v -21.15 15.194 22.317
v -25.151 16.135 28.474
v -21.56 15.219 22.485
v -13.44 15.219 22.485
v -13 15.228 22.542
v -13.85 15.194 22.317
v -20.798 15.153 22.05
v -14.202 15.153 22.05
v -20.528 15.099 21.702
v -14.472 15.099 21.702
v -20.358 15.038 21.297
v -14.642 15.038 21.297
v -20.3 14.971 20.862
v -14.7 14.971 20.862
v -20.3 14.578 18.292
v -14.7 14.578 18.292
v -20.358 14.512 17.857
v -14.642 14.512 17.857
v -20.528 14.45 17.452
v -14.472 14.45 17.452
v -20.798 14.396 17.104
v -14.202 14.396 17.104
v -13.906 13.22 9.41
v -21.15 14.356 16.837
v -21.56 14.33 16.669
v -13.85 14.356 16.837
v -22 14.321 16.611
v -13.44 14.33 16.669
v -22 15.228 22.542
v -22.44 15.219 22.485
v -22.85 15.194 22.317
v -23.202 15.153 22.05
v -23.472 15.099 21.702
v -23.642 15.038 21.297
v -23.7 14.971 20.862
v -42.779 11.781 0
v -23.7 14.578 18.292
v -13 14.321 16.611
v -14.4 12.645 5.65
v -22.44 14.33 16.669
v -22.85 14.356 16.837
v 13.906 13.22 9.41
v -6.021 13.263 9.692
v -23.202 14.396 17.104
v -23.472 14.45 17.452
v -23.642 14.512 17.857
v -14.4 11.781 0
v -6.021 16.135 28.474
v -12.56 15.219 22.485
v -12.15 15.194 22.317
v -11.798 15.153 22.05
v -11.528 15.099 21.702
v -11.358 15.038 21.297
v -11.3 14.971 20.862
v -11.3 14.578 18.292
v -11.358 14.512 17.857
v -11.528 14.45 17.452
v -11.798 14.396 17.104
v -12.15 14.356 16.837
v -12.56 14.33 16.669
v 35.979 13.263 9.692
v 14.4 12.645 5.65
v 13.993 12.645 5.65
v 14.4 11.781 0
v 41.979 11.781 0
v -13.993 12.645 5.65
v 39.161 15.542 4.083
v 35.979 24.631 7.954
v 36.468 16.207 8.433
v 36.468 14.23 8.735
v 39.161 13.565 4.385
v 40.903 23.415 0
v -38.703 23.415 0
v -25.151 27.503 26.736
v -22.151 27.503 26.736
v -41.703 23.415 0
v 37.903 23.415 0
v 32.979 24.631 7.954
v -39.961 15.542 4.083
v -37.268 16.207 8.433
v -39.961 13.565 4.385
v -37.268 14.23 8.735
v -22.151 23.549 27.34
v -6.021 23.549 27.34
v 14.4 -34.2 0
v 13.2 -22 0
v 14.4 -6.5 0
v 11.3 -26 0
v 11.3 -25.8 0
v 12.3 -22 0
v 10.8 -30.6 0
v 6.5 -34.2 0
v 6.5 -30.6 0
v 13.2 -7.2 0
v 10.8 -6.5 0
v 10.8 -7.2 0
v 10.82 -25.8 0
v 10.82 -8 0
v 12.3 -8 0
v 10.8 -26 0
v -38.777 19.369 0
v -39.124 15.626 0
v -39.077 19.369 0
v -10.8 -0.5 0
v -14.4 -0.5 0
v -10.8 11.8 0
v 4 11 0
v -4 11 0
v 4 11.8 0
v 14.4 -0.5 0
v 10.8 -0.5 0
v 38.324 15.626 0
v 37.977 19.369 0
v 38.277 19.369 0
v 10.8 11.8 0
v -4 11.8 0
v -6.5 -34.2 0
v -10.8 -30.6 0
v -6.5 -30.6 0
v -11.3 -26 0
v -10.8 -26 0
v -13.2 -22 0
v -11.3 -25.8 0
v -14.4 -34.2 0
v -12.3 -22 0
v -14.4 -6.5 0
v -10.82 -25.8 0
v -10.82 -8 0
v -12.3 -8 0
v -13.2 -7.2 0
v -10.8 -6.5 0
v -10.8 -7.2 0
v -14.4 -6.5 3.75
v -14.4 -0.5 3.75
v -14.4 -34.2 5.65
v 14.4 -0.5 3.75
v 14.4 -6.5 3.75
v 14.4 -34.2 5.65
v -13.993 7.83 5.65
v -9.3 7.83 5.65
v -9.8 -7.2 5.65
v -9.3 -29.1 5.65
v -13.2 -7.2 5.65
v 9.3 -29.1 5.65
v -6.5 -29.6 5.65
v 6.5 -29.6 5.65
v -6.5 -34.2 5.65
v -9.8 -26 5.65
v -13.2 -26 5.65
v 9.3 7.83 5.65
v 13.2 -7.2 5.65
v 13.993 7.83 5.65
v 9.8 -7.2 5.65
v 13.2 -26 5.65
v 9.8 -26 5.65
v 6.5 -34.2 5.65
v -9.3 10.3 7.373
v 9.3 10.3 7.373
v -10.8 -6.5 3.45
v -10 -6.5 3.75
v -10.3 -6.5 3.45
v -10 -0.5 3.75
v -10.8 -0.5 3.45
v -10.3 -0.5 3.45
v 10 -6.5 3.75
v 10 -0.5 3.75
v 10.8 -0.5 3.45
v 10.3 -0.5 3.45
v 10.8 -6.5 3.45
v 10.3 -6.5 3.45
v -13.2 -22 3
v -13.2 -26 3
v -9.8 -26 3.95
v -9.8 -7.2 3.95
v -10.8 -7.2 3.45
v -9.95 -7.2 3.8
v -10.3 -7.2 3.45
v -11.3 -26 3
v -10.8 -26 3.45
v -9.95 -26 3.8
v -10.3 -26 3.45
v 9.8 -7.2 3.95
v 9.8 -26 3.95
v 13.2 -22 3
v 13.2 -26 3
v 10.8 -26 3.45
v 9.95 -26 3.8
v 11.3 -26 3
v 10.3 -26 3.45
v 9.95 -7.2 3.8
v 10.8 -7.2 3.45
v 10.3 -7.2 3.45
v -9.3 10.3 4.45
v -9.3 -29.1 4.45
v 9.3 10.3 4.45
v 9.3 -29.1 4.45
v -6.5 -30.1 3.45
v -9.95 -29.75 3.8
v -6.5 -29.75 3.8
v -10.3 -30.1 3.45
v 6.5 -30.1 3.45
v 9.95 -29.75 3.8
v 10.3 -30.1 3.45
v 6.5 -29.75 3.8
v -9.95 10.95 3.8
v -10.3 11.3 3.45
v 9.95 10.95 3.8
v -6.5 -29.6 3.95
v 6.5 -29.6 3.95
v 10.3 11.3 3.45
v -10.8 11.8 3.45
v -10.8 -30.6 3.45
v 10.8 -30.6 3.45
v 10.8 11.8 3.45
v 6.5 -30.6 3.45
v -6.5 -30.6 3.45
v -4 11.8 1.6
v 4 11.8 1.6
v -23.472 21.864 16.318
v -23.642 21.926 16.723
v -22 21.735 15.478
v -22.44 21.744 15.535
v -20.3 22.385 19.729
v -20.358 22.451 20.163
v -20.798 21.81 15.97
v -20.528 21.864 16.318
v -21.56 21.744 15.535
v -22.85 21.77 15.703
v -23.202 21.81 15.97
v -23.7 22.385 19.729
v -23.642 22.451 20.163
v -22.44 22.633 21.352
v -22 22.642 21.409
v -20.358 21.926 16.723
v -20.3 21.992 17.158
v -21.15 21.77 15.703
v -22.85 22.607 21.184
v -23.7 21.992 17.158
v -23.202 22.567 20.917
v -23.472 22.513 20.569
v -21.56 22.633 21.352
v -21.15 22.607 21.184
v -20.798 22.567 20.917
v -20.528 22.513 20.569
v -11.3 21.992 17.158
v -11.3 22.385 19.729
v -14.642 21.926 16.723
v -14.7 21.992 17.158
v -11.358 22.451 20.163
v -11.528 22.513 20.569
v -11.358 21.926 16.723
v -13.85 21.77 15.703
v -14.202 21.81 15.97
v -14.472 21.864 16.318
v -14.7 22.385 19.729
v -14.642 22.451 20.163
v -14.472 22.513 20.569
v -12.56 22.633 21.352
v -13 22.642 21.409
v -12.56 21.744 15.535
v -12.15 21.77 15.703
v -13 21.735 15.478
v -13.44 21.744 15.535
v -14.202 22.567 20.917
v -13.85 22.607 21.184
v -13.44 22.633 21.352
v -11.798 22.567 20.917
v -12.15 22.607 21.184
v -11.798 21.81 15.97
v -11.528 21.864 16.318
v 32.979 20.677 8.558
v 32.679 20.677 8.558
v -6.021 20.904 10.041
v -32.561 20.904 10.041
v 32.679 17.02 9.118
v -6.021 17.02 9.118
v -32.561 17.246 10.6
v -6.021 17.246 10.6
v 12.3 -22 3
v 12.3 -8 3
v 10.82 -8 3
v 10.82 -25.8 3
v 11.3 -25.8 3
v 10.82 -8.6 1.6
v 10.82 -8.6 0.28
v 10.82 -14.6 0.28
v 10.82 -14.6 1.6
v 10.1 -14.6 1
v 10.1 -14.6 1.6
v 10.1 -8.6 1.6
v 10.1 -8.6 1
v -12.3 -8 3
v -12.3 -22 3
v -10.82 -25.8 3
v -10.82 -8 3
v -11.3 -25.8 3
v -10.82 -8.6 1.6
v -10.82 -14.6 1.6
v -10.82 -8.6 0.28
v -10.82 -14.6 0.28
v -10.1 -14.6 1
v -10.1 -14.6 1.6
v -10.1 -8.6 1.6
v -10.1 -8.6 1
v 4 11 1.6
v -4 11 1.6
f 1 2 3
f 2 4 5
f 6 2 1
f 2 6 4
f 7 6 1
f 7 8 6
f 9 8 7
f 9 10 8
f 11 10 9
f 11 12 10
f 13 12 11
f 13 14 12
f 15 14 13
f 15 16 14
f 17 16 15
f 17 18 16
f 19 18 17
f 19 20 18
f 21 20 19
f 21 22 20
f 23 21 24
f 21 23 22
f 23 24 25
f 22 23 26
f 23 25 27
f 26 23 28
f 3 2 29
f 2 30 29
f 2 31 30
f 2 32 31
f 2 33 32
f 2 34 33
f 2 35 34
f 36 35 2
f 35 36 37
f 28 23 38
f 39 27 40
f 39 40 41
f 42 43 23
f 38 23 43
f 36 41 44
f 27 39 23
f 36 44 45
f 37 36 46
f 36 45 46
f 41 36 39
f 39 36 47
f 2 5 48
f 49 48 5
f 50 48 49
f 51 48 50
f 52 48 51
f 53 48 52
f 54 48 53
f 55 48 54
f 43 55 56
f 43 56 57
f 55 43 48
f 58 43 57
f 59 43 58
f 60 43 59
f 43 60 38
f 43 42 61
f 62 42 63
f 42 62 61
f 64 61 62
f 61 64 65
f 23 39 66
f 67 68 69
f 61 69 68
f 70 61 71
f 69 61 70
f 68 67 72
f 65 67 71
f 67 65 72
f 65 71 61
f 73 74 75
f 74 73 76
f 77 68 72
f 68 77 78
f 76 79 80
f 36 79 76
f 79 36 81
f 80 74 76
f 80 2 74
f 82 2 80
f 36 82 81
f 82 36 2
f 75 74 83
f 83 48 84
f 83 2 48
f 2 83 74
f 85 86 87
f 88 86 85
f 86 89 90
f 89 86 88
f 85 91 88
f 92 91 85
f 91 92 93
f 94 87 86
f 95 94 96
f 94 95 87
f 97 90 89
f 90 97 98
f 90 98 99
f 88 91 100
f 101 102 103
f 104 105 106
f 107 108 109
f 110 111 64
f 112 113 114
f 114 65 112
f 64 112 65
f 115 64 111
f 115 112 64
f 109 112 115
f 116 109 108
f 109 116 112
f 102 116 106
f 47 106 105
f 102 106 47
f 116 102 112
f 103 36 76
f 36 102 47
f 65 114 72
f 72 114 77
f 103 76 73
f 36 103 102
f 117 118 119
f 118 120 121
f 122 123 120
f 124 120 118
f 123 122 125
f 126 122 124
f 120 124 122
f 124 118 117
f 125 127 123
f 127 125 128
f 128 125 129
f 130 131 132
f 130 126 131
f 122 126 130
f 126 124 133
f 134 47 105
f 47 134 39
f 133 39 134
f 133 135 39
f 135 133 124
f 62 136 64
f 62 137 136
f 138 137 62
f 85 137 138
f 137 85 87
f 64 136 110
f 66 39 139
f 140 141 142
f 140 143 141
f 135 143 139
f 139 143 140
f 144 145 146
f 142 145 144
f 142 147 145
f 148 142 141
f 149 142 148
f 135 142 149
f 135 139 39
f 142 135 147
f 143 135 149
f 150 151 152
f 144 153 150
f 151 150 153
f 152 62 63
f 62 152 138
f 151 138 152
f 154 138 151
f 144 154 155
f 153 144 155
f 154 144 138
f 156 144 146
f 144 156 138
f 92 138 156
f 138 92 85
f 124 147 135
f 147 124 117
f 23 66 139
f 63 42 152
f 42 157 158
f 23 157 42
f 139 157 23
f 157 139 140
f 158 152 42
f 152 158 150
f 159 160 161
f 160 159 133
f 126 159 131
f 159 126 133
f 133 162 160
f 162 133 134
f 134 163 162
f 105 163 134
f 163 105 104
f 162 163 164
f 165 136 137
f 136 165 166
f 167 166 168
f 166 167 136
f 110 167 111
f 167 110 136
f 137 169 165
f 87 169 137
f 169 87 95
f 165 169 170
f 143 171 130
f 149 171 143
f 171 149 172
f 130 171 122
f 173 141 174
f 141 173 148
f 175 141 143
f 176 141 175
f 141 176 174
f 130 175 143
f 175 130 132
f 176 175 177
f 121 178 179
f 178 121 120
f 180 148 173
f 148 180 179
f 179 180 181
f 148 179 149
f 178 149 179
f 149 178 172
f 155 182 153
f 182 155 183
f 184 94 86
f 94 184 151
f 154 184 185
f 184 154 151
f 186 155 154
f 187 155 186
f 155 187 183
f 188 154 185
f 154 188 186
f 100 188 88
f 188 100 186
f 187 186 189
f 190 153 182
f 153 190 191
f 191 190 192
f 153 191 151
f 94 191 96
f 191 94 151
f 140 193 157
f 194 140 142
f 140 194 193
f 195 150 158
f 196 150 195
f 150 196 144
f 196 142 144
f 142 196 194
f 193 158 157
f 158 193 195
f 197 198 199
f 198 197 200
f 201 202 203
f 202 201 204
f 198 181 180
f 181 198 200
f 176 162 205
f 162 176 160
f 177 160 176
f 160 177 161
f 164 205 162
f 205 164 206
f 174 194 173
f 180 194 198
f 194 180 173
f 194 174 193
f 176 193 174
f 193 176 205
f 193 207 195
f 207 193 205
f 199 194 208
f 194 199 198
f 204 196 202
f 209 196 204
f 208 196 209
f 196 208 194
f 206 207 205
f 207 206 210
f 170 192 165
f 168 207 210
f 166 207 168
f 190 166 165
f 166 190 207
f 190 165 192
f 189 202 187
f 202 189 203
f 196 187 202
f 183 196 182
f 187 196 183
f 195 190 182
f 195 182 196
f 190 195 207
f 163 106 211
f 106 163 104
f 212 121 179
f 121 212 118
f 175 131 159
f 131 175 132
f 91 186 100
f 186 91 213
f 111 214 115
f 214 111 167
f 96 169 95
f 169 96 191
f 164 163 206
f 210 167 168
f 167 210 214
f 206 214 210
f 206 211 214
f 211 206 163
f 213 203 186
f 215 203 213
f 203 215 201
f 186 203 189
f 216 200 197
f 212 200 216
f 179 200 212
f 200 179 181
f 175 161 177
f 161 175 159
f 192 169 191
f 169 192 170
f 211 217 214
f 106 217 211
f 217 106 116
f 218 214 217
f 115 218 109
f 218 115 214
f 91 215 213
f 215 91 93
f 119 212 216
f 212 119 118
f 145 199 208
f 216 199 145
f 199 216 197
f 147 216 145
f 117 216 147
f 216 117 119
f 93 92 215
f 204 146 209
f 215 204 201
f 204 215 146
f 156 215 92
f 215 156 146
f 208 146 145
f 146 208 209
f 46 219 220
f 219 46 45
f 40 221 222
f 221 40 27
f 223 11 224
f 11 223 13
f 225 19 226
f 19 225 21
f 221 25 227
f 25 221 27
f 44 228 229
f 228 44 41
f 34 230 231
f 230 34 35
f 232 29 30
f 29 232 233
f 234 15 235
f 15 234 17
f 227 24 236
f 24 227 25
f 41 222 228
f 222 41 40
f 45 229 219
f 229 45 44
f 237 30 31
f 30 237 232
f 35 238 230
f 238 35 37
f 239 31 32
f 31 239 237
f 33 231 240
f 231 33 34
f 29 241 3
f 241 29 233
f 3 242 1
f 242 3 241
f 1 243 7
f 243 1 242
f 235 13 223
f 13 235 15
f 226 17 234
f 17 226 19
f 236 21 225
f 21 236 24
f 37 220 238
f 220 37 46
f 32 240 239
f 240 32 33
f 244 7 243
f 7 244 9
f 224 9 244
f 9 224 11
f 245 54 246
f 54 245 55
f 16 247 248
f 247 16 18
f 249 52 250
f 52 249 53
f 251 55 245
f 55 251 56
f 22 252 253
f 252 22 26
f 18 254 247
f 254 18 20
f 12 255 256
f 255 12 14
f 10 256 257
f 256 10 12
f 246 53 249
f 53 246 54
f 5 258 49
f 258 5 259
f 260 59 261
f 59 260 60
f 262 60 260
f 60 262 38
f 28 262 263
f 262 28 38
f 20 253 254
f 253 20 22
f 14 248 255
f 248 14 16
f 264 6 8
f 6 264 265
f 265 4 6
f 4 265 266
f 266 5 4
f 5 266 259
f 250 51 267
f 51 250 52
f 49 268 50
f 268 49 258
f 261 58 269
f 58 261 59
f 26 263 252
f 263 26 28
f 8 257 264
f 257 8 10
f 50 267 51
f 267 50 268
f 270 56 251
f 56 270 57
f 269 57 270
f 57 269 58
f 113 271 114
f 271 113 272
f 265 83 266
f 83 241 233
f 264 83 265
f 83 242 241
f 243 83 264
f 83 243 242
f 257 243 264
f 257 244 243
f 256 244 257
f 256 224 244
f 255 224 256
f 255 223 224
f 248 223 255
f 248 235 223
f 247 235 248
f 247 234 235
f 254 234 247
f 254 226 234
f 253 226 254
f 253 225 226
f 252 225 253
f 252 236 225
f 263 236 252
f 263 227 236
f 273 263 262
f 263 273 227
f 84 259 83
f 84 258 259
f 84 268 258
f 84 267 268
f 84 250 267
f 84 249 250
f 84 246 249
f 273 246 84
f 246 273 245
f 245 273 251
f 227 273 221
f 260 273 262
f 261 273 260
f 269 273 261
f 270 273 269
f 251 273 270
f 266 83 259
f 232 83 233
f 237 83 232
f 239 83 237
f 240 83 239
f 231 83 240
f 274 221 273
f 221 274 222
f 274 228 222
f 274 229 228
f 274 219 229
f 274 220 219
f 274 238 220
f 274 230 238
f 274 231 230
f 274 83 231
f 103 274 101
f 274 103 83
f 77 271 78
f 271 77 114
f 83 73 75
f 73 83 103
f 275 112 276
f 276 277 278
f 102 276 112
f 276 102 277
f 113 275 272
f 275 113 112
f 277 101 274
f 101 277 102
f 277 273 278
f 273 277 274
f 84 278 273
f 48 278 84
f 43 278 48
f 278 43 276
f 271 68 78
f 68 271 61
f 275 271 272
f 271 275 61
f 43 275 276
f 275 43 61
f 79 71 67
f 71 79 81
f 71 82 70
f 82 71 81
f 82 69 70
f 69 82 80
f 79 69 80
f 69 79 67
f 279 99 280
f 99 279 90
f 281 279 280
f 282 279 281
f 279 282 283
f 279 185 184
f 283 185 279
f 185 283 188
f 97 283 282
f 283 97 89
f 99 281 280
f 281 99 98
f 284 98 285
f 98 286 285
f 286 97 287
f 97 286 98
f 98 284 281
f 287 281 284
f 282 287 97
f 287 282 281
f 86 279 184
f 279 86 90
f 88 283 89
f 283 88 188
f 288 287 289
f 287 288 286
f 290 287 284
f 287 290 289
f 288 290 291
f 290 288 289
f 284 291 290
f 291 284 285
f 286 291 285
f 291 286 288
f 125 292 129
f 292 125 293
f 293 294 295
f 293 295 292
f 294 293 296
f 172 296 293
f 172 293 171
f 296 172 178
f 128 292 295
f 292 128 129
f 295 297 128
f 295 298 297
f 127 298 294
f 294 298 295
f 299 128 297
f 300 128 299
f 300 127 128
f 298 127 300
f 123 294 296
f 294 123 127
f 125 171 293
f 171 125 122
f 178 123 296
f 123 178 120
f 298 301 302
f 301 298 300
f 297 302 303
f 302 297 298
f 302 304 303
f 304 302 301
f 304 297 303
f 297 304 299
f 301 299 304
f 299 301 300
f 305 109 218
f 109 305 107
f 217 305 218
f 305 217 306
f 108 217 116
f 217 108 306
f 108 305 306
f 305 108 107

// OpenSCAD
/*
Braccio gripper camera - ESP-EYE
================================
A frame for an ESP-EYE v2.1 (firmware/esp_eye_camera) that stands on top of
the gripper block, just behind the finger pivots. The board is upright, camera
end down and USB end up, with the lens looking forward along the fingers and
down at the grasp point. The lead leaves upwards, back along the arm.

The saddle it stands on, the two ways of fixing it (cable ties or screws) and
the gripper block dimensions are in braccio_gripper_camera_lib.scad. Read the
note there about measuring the block before printing.

AIM. The lens is on the gripper's plane of symmetry. The optical axis crosses
the gripper centre line `pick_distance` in front of the finger mounting face;
the tilt follows from that and from `camera_height`.

    pick_distance = 90    braccio_gripper_esp_eye_near.stl
    pick_distance = 120   braccio_gripper_esp_eye.stl      (default)
    pick_distance = 180   braccio_gripper_esp_eye_far.stl

THE BOARD, as braccio_camera_finger.scad and braccio_wrist_camera_mount.scad
have it (measured there off docs/images/esp-eye.png), with the outline checked
against the 41 x 21 mm that Espressif's distributors publish:

    board            41.0 (long) x 21.0 (wide) x 1.6 mm PCB
    camera barrel    front face, ~7 mm diameter, ~6.5 mm proud, lens axis
                     29.5 mm from the USB edge, on the centreline
    micro-USB        back face, at the 21 mm short edge, centred
    ESP32 module     back face, ~3.3 mm proud
    BOOT / RST       on the long edges, 26.0 mm from the USB edge

    https://www.espressif.com/en/products/devkits/esp-eye/resources
    https://wiki.dfrobot.com/ESP-EYE%20Development%20Board%20SKU:%20DFR0620

Espressif's own layout files (the ESP-EYE V2.1 reference design archive on the
first page) were not opened for this part, so treat every feature position as
a measurement to repeat on your board. Print the fit piece first:

    openscad -D 'part="fit_test"' -o braccio_gripper_esp_eye_fit_test.stl \
        braccio_gripper_esp_eye.scad

HOW THE BOARD IS HELD. Its back rim rests on a bevelled ledge round a window
that leaves the ESP32 module and the USB socket clear. A fixed hook catches
the camera end of the front face and two sprung latches click over the long
edges near the USB end: put the camera end in under the hook, then press the
USB end home. The frame is open in the middle of the USB end for the plug, and
cut away beside BOOT and RST.

`pose = "gripper"` exports the part where it sits, in the wrist roll frame of
the URDF, for scripts/check_gripper_cameras.py. The default is the print
pose: the lens side of the frame on the bed, the back of the board up.
*/

include <braccio_gripper_camera_lib.scad>

part = "holder";            // [holder, fit_test, electronics]
pose = "print";             // [print, gripper]

// ---------------------------------------------------------------- the board
board_length = 41.0;        // [20:0.5:70]
board_width = 21.0;         // [10:0.5:40]
board_thick = 1.6;
lens_from_usb = 29.5;       // lens optical axis, from the USB short edge
buttons_from_usb = 26.0;    // BOOT / RST, on the long edges
barrel_proud = 6.5;         // camera barrel above the front face
barrel_d = 7.0;
back_module_thick = 3.3;    // ESP32 module on the back face
usb_plug = [20, 11, 7];     // ESTIMATE: micro-USB plug body
camera_fov_deg = 66;        // ESTIMATE: OV2640 module

// ---------------------------------------------------------------- the frame
board_fit = 0.3;            // clearance round the board
board_slide = 0.8;          // extra length, to get the camera end under its hook
wall = 3.6;                 // frame wall: latch, its gap and an unbroken band
ledge = 1.5;                // border of the window the board's back rests on
back_band = 1.2;            // straight part of the window, at the back face
board_slack = 0.25;         // play between the board and the hooks
front_zone = 1.6;           // frame depth in front of the board's front face
latch_beam = 1.5;
latch_height = 3.0;
latch_reach = 0.7;
latch_gap = 0.9;
latch_from = 26.0;          // latch root, measured up from the lens
latch_to = 8.0;             // latch tip
latch_hook_len = 6.0;
end_hook_width = 8.0;
end_hook_reach = 0.8;
usb_relief = 13.0;          // gap in the frame at the USB end
button_relief = 6.0;

// ------------------------------------------------- height and setback
camera_height = 18.5;       // optical axis above the centre line at the frame
face_z = 29;                // back of the frame, along the gripper

// ------------------------------------------------------------------ derived
// Frame coordinates: lens at the origin, x across the board, y up the board
// towards the USB end, z from the back of the frame towards the lens.
function pocket_x() = board_width / 2 + board_fit;
function pocket_y0() = -(board_length - lens_from_usb) - board_fit;
function pocket_y1() = lens_from_usb + board_fit + board_slide;
function board_back_w() = back_band + 1.0;
function board_front_w() = board_back_w() + board_thick;
function hook_w() = board_front_w() + board_slack;
function frame_depth() = hook_w() + front_zone;
function lens_w() = board_front_w() + barrel_proud;
bed_w = frame_depth();

module frame_solid() {
    translate([-pocket_x() - wall, pocket_y0() - wall, 0])
        cube([2 * (pocket_x() + wall), pocket_y1() - pocket_y0() + 2 * wall,
              frame_depth()]);
}

// Space the board and its plugs need. Cut from everything.
module board_space() {
    cy = (pocket_y0() + pocket_y1()) / 2;
    lx = 2 * pocket_x();
    ly = pocket_y1() - pocket_y0();
    // the window behind the board
    translate([-pocket_x() + ledge, pocket_y0() + ledge, -200])
        cube([lx - 2 * ledge, ly - 2 * ledge, 200 + back_band + 0.4]);
    // the bevel the board's back rim rests on
    translate([0, cy, back_band])
        linear_extrude(height = 1.3,
                       scale = [(lx - 2 * ledge + 2.6) / (lx - 2 * ledge),
                                (ly - 2 * ledge + 2.6) / (ly - 2 * ledge)])
            square([lx - 2 * ledge, ly - 2 * ledge], center = true);
    // the board, and everything in front of it
    translate([-pocket_x(), pocket_y0(), board_back_w()])
        cube([lx, ly, 200]);
    // the plug, at the USB end
    translate([-usb_relief / 2, pocket_y1() - 1, -200])
        cube([usb_relief, wall + 30, 400]);
    // BOOT and RST: the frame is cut away beside them, in front of the ledge
    for (sx = [-1, 1])
        translate([sx > 0 ? pocket_x() - 1 : -pocket_x() - wall - 30,
                   lens_from_usb - buttons_from_usb - button_relief / 2,
                   board_back_w() - 0.3])
            cube([wall + 31, button_relief, 200]);
    // each latch springs in a slot; the band of frame outside it is left whole
    for (sx = [-1, 1])
        translate([sx > 0 ? pocket_x() - 1 : -pocket_x() - latch_beam - latch_gap,
                   latch_to - 0.8, -1])
            cube([latch_beam + latch_gap + 1, latch_from - latch_to + 0.8, 200]);
}

module latch_one() {
    // drawn for the +x wall; the other is its mirror image
    // the beam
    translate([pocket_x() + 0.02, latch_to, frame_depth()]) mirror([0, 0, 1])
        cube([latch_beam - 0.02, latch_from - latch_to - 0.2, latch_height]);
    // its root, across the slot and into the frame beyond it
    translate([pocket_x() + 0.5, latch_from - 4, frame_depth()])
        mirror([0, 0, 1])
            cube([latch_beam + latch_gap + 0.5, 7, latch_height]);
    // the hook, with a lead-in on the side the board is pushed in from
    translate([0, latch_to + 0.6 + latch_hook_len, 0]) rotate([90, 0, 0])
        linear_extrude(height = latch_hook_len)
            polygon([[pocket_x() + latch_beam / 2, hook_w()],
                     [pocket_x() - latch_reach, hook_w()],
                     [pocket_x() - latch_reach,
                      frame_depth() - latch_reach - 0.3],
                     [pocket_x() + 0.3, frame_depth()],
                     [pocket_x() + latch_beam / 2, frame_depth()]]);
}

module hooks_all() {
    latch_one();
    mirror([1, 0, 0]) latch_one();
    // the fixed hook over the camera end of the front face
    translate([-end_hook_width / 2, pocket_y0() - 1, frame_depth()])
        mirror([0, 0, 1])
            cube([end_hook_width, 1 + end_hook_reach, front_zone]);
}

module frame_patch() {
    // The foot of the frame, kept just inside its own surfaces.
    translate([0, 0, frame_depth()]) mirror([0, 0, 1])
        translate([-pocket_x() - wall + 0.4, pocket_y0() - wall + 0.4, 0])
            cube([2 * (pocket_x() + wall) - 0.8, wall + 4,
                  frame_depth() - 0.3]);
}

module gusset() {
    hull() {
        frame_patch();
        pad_strip(-pocket_x() - wall + 0.5, pocket_x() + wall - 0.5, face_z - 6);
    }
}

module esp_eye_holder() {
    difference() {
        union() {
            frame_solid();
            saddle();
            gusset();
        }
        board_space();
        from_gripper() saddle_cuts();
    }
    hooks_all();
}

module esp_eye_fit_test() {
    difference() {
        frame_solid();
        board_space();
    }
    hooks_all();
}

// The board, its module, the camera and a plug as plain blocks. Not printed.
module esp_eye_electronics() {
    y0 = -(board_length - lens_from_usb);
    color([0.1, 0.1, 0.12])
        translate([-board_width / 2, y0, board_back_w()])
            cube([board_width, board_length, board_thick]);
    color([0.6, 0.6, 0.62])
        translate([-8, y0 + 8, board_back_w() - back_module_thick])
            cube([16, 24, back_module_thick + 0.2]);
    color([0.05, 0.05, 0.05])
        translate([0, 0, board_front_w() - 0.2])
            cylinder(h = barrel_proud + 0.2, d = barrel_d + 1, $fn = 48);
    color([0.75, 0.75, 0.78])
        translate([-usb_plug[1] / 2, lens_from_usb - 4,
                   board_back_w() - usb_plug[2]])
            cube([usb_plug[1], usb_plug[0] + 4, usb_plug[2] + 0.2]);
}

// For the pictures: holder and board where they sit on the gripper.
module esp_eye_on_gripper() {
    on_gripper() {
        color([0.2, 0.55, 0.75]) esp_eye_holder();
        esp_eye_electronics();
    }
}

module the_part() {
    if (part == "fit_test") esp_eye_fit_test();
    else if (part == "electronics") esp_eye_electronics();
    else esp_eye_holder();
}

assert(wall >= latch_beam + latch_gap + 1.2,
       "wall leaves under 1.2 mm of frame outside the latch slots");
assert(frame_depth() - latch_reach - 0.3 > hook_w(),
       "front_zone is too shallow for the latch hook and its lead-in");

// Lens and target in the wrist roll frame, for the clearance check.
echo(str("gripper_camera {",
    "\"holder\": \"esp_eye\"",
    ", \"pick_distance\": ", pick_distance,
    ", \"tilt_deg\": ", tilt_deg(),
    ", \"camera_height\": ", camera_height,
    ", \"face_z\": ", face_z,
    ", \"target\": [0, 0, ", target_z(), "]",
    ", \"axis\": ", optical_dir(),
    ", \"lens\": ", holder_origin() + lens_w() * optical_dir(),
    ", \"fov_deg\": ", camera_fov_deg,
    ", \"ties\": ", ties(),
    ", \"tie_tunnel\": ", [tie_tunnel_width, tie_tunnel_thick],
    ", \"block\": ", [block_centre_x, block_half_width, block_ref_z,
                      block_taper, block_top_y, block_thickness, jaw_fit + jaw],
    "}"));

if (pose == "gripper") on_gripper() the_part();
else to_print() the_part();
